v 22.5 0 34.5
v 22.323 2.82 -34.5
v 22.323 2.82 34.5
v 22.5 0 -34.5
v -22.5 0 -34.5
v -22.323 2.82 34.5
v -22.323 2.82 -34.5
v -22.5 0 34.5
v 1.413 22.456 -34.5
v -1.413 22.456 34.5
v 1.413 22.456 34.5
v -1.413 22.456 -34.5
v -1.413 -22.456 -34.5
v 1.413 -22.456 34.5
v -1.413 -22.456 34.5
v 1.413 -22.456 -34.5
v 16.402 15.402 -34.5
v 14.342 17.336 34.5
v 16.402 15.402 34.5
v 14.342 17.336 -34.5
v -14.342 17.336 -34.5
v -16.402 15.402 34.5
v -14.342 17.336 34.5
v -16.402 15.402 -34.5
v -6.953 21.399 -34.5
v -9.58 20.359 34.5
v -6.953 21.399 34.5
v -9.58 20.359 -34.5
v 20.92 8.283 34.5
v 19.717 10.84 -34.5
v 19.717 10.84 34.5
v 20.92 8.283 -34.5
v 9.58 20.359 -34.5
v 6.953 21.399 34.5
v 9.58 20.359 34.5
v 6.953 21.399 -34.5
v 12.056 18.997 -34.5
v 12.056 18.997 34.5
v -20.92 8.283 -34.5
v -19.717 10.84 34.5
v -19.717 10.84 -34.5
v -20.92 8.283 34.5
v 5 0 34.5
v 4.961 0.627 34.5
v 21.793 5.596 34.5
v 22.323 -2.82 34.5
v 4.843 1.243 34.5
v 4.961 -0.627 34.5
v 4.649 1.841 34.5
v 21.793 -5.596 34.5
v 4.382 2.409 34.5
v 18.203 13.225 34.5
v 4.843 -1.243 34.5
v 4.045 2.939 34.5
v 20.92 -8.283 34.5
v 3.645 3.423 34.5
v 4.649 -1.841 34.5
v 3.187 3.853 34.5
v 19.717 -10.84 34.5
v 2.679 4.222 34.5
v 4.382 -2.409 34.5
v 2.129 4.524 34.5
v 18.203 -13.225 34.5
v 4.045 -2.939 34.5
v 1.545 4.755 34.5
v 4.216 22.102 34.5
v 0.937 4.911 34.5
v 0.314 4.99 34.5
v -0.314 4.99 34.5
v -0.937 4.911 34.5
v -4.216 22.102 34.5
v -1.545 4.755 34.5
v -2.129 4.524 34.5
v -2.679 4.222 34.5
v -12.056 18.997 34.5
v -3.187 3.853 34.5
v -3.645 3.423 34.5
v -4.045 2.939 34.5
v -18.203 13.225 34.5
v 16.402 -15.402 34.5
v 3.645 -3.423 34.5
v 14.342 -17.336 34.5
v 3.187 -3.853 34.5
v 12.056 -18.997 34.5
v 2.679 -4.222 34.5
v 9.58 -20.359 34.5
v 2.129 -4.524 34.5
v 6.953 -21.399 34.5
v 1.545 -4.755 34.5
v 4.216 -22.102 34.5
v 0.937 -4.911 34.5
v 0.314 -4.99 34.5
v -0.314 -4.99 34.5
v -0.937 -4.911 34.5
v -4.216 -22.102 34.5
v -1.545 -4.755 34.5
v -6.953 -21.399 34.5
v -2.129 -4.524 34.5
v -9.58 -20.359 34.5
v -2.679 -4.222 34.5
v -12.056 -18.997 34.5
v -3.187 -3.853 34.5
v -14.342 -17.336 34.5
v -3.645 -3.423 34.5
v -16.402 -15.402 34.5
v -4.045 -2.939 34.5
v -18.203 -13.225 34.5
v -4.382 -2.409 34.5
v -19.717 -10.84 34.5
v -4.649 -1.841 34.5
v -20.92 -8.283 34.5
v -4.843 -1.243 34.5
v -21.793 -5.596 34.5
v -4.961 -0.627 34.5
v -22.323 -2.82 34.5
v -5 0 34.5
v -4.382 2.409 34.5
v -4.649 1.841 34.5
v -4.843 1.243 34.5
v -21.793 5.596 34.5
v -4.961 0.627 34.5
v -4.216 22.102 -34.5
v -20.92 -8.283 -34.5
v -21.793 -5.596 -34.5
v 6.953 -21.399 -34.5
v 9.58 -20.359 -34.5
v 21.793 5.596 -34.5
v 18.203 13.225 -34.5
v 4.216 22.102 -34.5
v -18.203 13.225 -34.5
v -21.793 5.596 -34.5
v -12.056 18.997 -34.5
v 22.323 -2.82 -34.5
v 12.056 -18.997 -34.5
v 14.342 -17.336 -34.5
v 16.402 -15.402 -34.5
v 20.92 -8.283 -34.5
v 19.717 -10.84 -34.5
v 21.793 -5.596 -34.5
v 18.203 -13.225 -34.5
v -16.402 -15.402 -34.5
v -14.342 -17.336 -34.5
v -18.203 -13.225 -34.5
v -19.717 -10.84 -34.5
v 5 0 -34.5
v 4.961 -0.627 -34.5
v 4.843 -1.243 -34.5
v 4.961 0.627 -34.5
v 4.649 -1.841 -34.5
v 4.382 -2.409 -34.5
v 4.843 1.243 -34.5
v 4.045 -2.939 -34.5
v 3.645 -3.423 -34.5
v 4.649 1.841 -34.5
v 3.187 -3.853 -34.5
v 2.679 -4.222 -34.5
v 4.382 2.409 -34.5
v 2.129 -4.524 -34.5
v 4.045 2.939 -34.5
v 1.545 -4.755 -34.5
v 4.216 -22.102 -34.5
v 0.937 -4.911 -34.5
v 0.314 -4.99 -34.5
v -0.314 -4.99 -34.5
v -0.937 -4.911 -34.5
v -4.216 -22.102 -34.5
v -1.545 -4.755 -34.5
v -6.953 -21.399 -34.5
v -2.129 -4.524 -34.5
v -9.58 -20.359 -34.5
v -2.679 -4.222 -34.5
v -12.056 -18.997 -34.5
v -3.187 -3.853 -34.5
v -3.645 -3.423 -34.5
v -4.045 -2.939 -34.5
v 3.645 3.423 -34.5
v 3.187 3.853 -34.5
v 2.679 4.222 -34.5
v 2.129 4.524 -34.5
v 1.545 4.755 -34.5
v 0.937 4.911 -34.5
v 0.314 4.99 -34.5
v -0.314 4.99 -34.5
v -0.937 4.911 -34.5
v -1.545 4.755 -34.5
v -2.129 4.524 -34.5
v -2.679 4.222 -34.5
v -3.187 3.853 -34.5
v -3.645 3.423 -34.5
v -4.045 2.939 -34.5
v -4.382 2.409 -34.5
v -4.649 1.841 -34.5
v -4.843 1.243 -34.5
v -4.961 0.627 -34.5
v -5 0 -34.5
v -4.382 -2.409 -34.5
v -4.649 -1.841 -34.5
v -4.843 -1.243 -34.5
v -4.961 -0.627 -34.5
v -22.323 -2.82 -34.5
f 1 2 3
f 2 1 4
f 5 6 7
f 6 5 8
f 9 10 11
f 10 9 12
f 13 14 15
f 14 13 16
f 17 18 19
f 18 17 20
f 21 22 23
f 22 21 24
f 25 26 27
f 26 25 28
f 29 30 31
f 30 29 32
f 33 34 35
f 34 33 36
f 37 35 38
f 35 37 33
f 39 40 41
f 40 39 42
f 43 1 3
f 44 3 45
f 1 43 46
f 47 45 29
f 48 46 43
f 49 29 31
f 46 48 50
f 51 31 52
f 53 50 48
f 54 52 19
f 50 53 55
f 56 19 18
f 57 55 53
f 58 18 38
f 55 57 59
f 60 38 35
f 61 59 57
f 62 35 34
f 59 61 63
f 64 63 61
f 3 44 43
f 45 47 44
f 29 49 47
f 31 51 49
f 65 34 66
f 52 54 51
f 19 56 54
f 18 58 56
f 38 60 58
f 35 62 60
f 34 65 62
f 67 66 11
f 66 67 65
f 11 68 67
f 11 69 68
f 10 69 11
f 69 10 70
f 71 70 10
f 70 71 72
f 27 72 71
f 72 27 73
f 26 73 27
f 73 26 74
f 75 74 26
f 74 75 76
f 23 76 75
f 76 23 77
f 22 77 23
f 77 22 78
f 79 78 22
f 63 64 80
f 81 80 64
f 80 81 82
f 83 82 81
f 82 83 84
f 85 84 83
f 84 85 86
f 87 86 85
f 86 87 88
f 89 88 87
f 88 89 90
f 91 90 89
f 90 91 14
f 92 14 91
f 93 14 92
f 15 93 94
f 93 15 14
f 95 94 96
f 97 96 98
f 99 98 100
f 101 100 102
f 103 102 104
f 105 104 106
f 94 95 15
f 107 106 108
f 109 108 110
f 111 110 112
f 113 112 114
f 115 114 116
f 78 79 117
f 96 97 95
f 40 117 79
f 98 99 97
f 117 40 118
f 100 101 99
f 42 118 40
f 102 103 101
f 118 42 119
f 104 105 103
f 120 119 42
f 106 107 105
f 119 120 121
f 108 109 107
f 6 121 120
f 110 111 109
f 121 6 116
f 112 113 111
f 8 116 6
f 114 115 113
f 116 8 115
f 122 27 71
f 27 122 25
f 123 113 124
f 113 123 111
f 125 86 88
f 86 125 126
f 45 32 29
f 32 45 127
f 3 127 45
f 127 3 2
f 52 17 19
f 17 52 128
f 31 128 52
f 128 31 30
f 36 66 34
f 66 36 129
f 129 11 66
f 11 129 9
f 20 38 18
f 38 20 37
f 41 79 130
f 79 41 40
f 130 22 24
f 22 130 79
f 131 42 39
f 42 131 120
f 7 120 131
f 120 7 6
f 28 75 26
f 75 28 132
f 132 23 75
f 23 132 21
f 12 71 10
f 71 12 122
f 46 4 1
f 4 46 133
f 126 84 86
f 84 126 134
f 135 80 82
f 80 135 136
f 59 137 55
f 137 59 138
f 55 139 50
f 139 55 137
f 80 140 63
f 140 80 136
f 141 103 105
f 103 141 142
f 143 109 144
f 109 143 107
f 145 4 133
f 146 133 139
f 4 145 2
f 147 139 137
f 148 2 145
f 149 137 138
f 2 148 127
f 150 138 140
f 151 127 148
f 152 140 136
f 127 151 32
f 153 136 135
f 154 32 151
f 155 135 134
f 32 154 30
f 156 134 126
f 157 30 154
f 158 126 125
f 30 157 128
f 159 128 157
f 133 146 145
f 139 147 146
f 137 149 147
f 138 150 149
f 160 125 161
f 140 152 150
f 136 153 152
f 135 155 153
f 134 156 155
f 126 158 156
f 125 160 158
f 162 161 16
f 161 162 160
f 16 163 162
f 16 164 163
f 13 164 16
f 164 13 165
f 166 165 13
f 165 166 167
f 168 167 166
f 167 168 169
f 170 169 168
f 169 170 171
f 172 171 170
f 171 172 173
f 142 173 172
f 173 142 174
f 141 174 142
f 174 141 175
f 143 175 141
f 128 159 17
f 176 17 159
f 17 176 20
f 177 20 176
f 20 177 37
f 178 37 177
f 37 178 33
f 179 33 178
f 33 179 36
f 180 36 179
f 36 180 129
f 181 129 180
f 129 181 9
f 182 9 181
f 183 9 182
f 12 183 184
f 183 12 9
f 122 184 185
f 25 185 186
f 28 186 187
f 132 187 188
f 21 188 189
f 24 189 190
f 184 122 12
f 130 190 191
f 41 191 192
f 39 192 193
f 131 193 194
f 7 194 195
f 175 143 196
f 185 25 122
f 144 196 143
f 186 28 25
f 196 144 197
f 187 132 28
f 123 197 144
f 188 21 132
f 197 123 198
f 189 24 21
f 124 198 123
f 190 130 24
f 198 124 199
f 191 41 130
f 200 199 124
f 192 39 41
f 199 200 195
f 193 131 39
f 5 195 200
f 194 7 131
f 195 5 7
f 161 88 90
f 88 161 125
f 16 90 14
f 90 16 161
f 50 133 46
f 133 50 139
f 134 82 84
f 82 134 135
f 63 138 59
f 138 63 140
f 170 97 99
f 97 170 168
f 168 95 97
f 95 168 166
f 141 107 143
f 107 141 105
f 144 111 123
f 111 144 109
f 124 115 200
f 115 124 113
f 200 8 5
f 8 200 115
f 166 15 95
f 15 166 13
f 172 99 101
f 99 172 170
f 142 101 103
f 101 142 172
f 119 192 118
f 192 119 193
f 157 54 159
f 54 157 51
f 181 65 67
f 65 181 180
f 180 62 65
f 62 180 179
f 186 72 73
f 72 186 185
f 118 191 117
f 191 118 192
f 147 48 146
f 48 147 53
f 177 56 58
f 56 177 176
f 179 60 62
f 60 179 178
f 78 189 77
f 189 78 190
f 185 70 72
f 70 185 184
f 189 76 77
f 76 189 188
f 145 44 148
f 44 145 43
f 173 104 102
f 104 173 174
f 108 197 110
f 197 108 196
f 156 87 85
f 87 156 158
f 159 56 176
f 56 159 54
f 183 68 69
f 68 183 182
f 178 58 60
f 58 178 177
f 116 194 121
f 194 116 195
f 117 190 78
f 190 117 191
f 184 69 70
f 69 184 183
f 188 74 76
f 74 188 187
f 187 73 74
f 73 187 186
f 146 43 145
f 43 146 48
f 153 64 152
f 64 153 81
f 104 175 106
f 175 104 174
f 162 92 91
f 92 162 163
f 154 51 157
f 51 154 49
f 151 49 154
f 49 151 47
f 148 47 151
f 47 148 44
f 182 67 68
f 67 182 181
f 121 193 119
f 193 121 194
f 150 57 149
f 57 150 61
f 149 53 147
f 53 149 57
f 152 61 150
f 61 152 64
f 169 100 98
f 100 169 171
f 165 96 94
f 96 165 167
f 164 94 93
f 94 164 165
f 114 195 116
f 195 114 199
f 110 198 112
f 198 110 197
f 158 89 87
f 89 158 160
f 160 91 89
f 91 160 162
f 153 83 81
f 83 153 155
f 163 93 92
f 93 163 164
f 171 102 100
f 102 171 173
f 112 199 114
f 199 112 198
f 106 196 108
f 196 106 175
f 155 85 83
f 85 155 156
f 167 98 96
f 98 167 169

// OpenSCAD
$fn = 50;


difference() {
	union() {
		translate(v = [0, 0, -34.5000000000]) {
			cylinder(h = 69, r = 22.5000000000);
		}
	}
	union() {
		translate(v = [0, 0, -100.0000000000]) {
			cylinder(h = 200, r = 5);
		}
	}
}
